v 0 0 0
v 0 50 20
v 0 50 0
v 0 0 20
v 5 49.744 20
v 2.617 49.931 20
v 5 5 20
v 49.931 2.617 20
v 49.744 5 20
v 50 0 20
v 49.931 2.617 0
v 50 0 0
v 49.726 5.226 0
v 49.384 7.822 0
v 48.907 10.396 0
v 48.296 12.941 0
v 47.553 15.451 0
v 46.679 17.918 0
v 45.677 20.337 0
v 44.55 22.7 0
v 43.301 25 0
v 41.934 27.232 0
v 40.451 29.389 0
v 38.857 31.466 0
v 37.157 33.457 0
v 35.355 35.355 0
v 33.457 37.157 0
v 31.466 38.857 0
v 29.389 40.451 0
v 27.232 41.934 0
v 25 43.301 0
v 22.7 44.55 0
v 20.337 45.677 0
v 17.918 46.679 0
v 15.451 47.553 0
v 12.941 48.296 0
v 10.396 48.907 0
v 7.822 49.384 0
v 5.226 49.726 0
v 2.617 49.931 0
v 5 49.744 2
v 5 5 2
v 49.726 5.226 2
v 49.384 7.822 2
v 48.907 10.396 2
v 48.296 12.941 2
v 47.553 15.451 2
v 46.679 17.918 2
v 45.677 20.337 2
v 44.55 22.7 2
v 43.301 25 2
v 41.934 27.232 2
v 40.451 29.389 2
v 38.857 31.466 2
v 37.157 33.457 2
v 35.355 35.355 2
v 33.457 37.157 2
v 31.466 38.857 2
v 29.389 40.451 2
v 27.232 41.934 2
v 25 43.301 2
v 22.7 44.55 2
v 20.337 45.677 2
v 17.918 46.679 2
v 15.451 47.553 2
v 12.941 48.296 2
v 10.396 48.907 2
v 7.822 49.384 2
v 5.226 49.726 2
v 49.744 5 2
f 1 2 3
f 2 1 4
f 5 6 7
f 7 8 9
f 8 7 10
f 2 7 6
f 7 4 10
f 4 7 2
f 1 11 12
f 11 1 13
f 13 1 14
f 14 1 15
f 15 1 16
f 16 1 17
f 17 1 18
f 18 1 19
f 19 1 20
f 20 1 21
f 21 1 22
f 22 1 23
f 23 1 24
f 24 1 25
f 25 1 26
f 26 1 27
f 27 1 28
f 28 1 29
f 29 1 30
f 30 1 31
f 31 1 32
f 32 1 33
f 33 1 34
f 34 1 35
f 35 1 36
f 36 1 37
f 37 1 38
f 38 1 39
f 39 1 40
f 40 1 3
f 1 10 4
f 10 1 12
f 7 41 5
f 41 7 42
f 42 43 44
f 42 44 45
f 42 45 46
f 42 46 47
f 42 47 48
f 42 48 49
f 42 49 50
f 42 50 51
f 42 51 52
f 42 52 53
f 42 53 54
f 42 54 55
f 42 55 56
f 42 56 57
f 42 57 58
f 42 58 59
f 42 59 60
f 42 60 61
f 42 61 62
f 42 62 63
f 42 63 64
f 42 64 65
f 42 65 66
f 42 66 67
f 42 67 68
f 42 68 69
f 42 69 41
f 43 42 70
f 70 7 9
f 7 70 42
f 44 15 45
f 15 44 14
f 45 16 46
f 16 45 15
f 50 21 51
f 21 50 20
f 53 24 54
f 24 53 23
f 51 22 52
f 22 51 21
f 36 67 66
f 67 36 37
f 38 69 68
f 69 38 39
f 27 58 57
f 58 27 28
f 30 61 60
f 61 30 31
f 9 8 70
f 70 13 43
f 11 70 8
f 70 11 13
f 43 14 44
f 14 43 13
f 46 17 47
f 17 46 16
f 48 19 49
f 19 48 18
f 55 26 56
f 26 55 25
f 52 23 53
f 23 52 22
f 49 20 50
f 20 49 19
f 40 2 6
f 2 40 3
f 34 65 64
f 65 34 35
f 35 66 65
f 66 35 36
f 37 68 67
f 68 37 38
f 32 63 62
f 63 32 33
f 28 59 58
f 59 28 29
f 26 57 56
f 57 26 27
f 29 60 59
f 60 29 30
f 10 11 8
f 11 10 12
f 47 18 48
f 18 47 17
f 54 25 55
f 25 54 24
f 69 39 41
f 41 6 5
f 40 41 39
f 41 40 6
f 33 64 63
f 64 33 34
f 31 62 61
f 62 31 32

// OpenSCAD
intersection()
{
    difference()
    {
        cube([50,50,20]);
        translate([5,5,2])cube([50,50,20]);
    }
    cylinder(r=50, h=25, $fn=120);
}
